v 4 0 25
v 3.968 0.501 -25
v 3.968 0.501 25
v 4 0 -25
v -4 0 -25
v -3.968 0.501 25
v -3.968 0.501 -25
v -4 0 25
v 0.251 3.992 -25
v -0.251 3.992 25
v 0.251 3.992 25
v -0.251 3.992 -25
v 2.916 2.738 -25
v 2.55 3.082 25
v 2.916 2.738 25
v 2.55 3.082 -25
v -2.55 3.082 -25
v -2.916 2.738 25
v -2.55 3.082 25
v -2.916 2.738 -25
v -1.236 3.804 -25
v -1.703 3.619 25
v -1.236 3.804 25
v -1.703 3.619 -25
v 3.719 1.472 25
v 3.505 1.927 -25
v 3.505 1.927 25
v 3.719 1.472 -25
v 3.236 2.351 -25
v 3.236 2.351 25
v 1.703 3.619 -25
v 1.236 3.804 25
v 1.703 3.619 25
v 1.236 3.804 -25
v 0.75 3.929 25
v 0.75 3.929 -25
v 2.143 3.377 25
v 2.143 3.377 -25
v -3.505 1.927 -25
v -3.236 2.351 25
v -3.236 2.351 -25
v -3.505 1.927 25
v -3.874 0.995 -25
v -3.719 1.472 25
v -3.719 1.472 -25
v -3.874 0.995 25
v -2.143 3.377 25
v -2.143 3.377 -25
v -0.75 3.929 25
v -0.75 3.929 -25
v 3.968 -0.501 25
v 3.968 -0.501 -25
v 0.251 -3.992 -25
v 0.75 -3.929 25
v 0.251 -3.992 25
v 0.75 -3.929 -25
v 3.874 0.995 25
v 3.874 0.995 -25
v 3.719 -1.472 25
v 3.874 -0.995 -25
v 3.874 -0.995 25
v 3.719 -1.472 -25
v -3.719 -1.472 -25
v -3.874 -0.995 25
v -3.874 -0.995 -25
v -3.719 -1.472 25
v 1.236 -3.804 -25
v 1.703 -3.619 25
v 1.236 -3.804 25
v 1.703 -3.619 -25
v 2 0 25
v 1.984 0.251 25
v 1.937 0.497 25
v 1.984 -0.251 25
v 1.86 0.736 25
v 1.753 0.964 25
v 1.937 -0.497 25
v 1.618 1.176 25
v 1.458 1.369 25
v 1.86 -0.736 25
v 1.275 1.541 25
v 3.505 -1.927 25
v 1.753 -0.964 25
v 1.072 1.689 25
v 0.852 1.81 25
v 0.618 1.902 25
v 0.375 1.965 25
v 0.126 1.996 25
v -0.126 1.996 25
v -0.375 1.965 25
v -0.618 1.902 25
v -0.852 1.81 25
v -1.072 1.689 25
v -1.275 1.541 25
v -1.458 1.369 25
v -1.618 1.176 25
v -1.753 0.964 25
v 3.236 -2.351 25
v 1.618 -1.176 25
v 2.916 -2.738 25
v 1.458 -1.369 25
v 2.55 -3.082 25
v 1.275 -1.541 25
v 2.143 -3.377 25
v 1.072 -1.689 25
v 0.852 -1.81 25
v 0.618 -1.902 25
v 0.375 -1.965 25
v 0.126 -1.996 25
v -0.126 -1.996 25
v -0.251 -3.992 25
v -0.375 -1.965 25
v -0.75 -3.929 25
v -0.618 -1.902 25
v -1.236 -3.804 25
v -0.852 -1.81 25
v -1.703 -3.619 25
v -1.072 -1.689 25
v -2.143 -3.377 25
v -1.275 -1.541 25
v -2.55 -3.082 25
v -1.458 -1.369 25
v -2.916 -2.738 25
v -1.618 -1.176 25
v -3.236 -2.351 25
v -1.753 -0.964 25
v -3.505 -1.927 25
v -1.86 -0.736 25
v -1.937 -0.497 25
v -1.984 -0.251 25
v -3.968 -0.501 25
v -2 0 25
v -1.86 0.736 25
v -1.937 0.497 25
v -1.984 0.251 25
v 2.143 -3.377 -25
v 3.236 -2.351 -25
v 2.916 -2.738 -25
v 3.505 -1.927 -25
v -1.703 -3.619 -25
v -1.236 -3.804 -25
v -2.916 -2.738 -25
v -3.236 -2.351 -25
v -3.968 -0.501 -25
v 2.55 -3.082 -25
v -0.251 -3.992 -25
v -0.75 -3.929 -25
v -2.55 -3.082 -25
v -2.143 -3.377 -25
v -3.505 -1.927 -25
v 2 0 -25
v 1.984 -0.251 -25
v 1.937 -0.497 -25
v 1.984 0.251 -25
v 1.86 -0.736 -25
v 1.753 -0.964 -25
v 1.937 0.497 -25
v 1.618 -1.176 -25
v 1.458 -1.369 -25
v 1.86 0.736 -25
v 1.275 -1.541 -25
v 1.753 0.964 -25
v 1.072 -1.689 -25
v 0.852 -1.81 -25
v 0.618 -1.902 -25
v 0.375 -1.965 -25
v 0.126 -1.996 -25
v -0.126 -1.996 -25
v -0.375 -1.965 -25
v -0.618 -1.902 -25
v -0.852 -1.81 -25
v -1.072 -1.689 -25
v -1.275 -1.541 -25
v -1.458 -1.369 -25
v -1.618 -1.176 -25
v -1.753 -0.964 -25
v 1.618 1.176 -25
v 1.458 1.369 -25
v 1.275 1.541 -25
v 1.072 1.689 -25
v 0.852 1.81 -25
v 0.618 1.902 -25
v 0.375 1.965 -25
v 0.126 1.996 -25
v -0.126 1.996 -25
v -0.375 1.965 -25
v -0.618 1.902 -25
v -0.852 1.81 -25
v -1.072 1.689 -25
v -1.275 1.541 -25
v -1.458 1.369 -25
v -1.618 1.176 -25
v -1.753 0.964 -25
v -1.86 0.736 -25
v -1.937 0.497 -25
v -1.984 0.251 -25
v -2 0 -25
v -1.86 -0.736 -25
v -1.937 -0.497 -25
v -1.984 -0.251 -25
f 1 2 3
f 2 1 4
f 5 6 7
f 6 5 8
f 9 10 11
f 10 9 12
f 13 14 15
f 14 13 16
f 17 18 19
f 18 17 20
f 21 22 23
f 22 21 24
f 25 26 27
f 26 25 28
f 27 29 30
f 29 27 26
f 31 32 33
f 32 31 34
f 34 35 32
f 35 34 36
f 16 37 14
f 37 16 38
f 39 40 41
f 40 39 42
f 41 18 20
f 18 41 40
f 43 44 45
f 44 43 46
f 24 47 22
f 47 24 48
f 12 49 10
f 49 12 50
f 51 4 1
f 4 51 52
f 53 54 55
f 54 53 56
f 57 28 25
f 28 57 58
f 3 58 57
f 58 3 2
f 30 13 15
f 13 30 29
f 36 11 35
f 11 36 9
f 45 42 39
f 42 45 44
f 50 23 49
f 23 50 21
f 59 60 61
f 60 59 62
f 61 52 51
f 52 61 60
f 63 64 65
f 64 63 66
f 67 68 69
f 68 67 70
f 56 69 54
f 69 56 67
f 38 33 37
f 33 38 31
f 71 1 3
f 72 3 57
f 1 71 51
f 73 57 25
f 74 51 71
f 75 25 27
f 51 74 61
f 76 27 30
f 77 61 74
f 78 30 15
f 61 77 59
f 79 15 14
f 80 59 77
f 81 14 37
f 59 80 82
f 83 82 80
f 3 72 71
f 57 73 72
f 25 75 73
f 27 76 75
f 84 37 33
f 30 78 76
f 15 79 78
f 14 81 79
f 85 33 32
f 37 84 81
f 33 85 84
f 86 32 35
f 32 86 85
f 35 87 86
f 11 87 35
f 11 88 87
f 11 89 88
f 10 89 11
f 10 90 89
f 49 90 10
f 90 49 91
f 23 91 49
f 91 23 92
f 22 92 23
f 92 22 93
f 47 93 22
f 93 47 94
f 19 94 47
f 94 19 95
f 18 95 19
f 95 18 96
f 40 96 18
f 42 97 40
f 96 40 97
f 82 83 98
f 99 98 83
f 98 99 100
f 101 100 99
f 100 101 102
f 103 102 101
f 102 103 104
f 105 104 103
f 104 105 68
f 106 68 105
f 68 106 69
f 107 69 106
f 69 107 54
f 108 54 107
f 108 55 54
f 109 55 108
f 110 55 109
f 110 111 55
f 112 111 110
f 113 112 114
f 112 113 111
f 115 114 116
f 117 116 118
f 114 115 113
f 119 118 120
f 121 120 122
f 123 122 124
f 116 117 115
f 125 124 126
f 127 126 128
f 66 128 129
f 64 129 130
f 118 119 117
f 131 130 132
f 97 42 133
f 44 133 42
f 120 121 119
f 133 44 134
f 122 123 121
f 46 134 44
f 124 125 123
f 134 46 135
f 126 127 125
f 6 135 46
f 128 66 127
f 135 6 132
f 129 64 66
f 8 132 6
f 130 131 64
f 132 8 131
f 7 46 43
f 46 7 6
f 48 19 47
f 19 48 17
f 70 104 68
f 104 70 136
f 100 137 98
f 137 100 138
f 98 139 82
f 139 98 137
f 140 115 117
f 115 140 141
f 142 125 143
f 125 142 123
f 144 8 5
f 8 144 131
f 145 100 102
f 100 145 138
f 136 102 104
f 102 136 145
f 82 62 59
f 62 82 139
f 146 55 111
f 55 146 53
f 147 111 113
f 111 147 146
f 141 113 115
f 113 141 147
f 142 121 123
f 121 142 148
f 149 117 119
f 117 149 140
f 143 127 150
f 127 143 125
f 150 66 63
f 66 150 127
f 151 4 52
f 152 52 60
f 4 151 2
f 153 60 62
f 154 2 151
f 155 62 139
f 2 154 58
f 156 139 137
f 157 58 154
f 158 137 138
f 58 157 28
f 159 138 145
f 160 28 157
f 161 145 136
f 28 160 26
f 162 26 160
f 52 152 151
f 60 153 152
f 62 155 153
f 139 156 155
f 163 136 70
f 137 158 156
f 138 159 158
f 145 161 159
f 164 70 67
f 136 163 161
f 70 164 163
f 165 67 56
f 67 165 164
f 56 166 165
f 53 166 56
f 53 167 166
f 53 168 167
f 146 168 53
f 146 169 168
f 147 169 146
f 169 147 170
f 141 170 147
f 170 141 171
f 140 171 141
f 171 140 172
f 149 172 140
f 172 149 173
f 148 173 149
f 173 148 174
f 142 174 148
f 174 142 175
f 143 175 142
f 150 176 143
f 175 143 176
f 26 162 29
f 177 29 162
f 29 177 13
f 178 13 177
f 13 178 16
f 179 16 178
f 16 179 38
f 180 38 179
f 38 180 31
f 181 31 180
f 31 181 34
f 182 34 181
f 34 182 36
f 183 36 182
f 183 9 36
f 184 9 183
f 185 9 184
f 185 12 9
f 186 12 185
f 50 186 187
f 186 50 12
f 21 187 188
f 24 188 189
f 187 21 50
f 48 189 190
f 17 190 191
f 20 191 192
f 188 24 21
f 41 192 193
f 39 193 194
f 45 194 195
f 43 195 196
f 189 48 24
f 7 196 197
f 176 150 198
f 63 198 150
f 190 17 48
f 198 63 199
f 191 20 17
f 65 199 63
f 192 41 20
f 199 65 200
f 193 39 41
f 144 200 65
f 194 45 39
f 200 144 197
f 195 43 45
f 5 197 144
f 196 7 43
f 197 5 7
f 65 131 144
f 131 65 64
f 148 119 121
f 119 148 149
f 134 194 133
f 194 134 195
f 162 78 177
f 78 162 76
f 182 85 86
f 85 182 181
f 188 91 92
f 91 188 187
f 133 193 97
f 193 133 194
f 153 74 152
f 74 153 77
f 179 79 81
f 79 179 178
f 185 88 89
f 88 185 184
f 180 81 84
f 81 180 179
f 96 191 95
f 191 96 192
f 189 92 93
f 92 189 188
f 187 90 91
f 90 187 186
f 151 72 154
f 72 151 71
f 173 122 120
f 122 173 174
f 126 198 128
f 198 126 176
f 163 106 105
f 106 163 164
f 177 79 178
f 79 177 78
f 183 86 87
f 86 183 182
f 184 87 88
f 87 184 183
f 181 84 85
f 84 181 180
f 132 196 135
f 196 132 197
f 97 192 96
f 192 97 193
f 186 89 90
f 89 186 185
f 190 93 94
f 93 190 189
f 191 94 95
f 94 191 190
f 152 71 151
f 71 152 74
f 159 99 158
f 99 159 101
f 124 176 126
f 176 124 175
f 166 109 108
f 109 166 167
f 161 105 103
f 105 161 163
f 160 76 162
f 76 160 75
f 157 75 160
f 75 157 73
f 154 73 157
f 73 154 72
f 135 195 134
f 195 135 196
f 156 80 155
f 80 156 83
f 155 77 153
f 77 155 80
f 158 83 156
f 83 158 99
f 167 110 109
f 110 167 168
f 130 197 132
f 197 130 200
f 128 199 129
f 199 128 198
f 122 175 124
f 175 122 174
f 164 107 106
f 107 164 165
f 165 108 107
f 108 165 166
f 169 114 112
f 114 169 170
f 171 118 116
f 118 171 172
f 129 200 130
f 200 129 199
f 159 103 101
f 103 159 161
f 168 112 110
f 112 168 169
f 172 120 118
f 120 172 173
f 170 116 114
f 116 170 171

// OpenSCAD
$fn = 50;


difference() {
	union() {
		translate(v = [0, 0, -25.0000000000]) {
			cylinder(h = 50, r = 4.0000000000);
		}
	}
	union() {
		translate(v = [0, 0, -100.0000000000]) {
			cylinder(h = 200, r = 2.0000000000);
		}
	}
}
